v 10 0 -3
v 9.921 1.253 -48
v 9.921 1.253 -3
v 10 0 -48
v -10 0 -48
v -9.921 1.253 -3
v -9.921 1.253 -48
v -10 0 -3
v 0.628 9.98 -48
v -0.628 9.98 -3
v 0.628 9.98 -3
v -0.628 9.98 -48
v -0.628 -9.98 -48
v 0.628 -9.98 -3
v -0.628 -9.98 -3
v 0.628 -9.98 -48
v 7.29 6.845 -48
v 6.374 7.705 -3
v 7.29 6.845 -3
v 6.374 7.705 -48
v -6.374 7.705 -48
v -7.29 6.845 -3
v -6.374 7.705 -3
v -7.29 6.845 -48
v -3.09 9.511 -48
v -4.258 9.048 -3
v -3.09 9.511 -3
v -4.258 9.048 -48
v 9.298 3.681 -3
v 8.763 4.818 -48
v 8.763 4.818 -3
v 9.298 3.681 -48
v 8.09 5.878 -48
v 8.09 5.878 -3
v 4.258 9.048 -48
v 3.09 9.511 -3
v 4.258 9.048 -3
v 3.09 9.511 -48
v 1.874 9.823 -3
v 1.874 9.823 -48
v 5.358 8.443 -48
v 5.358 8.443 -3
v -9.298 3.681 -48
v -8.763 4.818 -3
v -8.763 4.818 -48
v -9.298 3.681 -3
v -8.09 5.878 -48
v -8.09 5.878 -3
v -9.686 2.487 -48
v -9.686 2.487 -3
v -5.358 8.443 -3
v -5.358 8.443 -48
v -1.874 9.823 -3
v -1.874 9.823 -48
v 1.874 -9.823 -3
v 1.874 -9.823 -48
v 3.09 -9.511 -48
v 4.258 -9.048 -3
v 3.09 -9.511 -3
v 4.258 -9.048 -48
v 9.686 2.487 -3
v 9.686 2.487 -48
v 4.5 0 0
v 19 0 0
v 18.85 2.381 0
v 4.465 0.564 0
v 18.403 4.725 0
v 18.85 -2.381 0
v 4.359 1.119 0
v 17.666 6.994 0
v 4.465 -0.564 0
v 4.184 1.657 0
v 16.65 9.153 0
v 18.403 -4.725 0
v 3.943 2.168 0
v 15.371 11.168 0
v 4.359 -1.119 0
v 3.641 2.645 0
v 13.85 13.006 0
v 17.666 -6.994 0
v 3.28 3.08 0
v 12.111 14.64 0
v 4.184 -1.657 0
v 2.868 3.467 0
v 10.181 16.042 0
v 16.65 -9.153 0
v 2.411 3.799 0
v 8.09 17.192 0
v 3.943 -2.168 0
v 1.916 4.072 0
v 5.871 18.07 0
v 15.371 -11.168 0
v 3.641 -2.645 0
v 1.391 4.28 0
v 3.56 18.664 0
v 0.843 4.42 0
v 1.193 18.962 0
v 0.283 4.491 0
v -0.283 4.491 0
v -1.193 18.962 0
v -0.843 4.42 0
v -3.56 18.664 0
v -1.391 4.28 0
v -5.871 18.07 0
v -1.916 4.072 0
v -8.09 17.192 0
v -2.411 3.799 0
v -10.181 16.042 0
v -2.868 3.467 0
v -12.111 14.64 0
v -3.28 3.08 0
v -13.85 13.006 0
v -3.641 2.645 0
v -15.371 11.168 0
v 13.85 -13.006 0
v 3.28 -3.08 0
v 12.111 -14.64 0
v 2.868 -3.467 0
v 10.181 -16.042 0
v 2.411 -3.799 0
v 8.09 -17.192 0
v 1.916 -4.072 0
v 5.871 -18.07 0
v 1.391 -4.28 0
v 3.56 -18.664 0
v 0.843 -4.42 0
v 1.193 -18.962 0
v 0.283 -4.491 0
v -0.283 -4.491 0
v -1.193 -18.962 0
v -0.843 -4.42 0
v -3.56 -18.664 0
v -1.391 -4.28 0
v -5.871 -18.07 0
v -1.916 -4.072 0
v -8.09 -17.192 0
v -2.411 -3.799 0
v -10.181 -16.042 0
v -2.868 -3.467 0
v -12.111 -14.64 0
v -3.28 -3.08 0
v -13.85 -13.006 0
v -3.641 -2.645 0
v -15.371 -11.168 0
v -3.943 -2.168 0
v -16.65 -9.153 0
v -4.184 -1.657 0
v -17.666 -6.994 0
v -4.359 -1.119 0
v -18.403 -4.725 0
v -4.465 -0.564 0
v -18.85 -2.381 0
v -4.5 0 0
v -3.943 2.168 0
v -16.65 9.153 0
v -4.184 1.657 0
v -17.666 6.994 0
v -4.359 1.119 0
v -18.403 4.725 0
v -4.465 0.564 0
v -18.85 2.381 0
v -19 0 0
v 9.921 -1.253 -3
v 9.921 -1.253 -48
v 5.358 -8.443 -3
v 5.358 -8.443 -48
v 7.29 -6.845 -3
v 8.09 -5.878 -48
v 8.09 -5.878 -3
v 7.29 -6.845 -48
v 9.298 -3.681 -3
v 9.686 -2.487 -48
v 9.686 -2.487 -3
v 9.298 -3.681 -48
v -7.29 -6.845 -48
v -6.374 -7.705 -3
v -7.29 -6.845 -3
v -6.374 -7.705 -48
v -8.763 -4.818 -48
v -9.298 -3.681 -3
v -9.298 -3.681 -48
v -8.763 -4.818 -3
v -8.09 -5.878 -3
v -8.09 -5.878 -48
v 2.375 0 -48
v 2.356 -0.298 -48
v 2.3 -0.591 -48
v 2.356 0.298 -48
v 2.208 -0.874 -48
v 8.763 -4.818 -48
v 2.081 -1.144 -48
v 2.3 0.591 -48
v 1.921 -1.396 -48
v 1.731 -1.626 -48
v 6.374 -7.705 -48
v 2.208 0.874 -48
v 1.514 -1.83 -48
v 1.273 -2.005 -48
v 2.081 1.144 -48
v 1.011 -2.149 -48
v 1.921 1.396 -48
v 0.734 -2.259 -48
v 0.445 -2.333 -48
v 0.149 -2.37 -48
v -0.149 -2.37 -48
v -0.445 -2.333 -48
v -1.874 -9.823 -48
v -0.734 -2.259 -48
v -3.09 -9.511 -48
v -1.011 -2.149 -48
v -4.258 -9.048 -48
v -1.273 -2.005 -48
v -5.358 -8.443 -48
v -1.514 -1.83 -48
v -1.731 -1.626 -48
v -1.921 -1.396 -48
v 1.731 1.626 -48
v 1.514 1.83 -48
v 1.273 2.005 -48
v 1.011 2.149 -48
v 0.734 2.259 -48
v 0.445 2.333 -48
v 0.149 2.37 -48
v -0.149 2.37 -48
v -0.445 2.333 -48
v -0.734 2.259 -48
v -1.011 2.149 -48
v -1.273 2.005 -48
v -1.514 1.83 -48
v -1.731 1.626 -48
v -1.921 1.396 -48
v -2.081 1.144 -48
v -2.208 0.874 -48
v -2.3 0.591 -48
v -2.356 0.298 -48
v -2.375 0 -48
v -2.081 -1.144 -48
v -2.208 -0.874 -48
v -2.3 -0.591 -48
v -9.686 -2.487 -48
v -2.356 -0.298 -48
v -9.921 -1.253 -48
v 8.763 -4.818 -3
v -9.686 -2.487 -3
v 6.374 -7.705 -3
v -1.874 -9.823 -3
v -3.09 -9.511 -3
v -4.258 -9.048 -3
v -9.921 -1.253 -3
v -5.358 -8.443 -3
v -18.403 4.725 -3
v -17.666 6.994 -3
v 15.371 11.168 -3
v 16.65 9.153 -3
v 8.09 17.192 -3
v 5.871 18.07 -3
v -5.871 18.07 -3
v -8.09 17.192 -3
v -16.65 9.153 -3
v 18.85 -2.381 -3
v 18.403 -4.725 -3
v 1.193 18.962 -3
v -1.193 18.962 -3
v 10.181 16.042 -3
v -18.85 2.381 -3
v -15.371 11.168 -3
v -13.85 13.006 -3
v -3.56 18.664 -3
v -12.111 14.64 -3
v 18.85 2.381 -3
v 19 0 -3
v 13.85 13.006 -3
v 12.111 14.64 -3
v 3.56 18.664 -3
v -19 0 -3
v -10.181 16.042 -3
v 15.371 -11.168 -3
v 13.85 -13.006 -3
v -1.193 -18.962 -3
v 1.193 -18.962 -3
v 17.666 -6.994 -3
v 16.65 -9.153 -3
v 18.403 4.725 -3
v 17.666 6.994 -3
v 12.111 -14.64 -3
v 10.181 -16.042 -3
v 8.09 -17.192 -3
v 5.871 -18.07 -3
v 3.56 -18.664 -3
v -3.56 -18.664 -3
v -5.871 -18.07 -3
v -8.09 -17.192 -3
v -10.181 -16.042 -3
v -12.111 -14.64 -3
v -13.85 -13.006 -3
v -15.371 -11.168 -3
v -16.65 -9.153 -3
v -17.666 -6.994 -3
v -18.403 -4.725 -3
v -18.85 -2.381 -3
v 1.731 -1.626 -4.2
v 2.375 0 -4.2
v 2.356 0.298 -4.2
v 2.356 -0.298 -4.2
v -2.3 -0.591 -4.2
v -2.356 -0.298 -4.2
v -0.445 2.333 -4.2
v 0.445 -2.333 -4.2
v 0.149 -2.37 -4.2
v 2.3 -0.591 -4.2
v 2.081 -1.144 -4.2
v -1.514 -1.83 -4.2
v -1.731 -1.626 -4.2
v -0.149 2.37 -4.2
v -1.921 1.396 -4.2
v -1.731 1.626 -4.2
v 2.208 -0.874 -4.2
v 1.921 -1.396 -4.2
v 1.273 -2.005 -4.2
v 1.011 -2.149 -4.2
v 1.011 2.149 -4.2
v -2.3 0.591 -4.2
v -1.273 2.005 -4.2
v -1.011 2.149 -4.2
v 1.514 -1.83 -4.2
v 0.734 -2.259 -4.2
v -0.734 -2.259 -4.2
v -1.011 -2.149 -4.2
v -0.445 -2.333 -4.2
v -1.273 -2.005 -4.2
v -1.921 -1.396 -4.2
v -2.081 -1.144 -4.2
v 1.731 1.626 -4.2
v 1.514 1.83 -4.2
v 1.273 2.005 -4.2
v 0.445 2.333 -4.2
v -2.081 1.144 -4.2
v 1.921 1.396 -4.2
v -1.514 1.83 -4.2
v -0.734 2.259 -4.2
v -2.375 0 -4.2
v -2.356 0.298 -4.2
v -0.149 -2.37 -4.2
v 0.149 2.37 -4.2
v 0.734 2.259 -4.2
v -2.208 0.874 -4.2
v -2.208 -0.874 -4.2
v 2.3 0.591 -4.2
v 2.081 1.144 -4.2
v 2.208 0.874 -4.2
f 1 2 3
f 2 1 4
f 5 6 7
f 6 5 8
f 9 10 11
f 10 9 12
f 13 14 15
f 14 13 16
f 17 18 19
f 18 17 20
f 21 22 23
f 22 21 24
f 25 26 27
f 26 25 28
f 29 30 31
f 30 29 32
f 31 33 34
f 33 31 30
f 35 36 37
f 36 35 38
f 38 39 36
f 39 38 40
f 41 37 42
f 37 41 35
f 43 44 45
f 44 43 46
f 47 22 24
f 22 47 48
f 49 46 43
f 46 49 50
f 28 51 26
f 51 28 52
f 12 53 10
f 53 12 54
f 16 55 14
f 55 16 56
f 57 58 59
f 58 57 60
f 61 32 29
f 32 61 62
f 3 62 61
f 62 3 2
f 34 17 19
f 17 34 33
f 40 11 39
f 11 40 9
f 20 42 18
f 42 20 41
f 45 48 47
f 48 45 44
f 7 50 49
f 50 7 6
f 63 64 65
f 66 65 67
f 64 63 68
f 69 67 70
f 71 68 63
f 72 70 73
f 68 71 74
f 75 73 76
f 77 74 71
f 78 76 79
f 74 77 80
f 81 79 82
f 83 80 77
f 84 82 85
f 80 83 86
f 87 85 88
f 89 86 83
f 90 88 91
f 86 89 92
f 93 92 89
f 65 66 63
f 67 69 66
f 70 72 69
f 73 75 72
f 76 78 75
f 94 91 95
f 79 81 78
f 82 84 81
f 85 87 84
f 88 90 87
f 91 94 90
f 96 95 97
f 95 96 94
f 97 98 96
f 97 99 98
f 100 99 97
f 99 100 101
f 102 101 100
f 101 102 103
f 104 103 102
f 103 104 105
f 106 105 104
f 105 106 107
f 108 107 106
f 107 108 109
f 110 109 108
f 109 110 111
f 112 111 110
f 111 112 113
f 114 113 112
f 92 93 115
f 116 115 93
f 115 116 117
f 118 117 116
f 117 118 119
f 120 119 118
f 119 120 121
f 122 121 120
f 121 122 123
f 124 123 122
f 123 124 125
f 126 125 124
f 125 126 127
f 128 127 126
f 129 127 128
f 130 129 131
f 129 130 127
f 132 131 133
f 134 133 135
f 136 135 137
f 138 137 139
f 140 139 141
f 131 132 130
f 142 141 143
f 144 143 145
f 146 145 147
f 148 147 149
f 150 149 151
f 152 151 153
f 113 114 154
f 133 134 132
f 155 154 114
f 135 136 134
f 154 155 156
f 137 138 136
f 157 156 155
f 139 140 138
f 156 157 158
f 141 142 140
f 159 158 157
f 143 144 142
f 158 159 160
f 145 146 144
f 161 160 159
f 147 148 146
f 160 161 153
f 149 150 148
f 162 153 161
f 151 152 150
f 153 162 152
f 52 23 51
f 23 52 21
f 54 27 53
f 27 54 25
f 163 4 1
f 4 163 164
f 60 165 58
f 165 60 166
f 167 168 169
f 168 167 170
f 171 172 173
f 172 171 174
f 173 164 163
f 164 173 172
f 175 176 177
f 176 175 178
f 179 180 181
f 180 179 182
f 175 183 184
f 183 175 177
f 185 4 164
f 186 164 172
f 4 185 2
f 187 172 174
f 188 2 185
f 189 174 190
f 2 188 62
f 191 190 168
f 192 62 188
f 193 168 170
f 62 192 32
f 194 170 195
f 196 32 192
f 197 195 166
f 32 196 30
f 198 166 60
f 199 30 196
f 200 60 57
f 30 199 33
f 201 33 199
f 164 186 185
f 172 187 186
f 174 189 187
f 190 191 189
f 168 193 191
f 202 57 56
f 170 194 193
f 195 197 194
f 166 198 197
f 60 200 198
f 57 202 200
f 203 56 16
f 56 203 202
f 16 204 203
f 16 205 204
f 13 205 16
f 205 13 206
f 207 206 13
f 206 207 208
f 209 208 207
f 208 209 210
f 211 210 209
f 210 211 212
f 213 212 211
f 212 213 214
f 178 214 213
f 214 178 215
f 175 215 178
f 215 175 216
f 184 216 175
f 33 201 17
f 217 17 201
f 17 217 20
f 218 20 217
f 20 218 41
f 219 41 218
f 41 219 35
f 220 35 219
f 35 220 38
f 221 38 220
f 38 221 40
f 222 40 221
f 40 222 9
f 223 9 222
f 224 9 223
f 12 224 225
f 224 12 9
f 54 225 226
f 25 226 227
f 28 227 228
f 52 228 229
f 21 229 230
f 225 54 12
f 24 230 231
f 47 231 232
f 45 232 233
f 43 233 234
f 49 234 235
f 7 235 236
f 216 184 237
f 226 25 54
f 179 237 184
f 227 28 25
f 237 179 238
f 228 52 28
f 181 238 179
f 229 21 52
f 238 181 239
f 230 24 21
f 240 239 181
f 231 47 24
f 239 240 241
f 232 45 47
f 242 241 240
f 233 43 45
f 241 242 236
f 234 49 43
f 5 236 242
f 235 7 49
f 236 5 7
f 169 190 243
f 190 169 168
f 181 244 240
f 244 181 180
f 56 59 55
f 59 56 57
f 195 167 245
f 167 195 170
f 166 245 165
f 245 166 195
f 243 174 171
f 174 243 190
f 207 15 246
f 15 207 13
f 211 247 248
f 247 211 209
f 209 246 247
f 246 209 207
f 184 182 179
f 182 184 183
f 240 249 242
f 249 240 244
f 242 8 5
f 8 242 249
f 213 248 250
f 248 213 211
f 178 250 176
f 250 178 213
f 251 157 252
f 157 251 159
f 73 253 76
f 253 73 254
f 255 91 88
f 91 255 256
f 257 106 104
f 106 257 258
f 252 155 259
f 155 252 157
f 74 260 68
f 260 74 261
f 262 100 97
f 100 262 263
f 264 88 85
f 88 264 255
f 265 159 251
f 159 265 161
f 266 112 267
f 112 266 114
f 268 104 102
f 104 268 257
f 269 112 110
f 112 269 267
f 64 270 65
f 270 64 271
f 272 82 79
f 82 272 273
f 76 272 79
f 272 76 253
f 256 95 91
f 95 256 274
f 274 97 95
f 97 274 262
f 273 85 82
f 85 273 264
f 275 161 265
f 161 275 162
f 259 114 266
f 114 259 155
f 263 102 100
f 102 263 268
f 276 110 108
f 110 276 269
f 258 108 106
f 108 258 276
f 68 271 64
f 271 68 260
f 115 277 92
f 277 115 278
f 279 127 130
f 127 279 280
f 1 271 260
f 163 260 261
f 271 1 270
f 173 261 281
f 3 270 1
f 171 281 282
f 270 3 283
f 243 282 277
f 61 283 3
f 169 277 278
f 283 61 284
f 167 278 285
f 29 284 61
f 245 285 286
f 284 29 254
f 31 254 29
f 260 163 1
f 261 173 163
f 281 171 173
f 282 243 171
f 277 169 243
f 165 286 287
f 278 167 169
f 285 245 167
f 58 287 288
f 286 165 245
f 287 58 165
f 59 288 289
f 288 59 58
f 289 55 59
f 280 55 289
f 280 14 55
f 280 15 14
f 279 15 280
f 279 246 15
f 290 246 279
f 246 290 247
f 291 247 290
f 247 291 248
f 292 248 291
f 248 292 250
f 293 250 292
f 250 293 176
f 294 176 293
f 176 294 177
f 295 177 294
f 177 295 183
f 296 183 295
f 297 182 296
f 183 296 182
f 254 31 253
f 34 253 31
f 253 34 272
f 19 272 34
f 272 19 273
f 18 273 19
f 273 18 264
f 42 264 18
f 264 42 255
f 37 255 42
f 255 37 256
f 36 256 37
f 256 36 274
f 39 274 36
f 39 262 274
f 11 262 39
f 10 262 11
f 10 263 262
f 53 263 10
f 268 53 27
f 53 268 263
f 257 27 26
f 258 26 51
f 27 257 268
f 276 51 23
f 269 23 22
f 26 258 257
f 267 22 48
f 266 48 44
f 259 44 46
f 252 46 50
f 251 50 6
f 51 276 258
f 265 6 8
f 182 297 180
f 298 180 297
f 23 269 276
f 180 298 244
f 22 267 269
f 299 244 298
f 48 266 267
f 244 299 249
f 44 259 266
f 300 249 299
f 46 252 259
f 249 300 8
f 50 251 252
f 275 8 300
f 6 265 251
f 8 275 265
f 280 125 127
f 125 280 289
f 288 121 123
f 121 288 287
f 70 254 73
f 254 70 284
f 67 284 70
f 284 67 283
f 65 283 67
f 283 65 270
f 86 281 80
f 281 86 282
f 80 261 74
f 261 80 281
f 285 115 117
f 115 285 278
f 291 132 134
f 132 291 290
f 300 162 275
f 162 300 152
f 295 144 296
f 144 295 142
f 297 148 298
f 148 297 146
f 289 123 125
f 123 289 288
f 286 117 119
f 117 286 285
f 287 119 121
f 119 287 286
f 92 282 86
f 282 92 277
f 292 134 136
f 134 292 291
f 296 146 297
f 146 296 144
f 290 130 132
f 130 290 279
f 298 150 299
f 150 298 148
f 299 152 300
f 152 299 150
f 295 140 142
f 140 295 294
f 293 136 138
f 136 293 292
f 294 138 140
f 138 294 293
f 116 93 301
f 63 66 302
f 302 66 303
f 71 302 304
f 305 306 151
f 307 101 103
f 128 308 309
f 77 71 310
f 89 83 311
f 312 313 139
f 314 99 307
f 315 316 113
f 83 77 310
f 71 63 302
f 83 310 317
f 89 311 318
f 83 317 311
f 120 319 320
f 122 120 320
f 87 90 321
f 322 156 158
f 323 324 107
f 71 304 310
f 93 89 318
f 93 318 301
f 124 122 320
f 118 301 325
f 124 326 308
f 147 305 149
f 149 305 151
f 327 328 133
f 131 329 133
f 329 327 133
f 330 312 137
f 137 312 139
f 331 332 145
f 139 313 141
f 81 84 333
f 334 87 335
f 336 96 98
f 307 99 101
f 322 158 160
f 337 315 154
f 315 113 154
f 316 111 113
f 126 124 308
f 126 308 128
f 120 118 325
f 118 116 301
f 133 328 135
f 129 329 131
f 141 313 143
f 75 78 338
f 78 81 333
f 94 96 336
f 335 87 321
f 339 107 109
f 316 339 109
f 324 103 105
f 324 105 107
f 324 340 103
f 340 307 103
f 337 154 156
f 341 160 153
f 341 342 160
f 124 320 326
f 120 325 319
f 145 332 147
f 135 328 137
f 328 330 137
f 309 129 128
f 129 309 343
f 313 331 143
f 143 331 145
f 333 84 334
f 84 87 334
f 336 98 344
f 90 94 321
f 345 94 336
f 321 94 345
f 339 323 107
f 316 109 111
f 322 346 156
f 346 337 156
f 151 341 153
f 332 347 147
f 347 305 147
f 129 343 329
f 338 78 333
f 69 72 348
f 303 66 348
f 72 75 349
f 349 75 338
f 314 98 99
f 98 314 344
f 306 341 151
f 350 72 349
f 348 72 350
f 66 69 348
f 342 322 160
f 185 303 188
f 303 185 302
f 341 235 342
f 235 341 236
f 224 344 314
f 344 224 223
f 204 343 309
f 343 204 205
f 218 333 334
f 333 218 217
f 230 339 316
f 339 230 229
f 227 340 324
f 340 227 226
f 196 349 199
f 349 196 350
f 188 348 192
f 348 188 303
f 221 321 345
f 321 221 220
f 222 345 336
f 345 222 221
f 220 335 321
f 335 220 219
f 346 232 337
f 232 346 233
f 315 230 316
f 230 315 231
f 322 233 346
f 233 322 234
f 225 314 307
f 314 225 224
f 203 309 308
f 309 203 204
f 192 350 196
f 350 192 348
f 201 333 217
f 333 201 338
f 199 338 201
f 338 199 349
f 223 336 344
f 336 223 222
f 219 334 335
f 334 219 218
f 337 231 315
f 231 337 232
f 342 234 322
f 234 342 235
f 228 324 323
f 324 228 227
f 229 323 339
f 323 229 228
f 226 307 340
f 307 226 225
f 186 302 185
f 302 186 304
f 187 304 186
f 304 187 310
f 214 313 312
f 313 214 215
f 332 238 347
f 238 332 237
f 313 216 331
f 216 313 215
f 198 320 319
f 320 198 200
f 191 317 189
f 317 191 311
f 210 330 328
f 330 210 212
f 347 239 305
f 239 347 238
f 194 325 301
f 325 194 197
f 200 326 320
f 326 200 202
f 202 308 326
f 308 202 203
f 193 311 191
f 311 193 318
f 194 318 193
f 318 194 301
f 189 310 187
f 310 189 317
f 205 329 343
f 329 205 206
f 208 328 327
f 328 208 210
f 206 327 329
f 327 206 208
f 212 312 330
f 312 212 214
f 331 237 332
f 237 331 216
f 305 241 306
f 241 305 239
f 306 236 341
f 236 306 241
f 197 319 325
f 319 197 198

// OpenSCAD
$fn = 50;


difference() {
	union() {
		translate(v = [0, 0, -48.0000000000]) {
			cylinder(h = 48, r = 10.0000000000);
		}
		translate(v = [0, 0, -3.0000000000]) {
			cylinder(h = 3, r = 19.0000000000);
		}
	}
	union() {
		translate(v = [0, 0, 0]) {
			rotate(a = [0, 0, 0]) {
				difference() {
					union() {
						#translate(v = [0, 0, -48.0000000000]) {
							cylinder(h = 48, r = 2.2500000000);
						}
						#translate(v = [0, 0, -4.2000000000]) {
							cylinder(h = 4.2000000000, r = 10.0000000000, r1 = 2.3750000000, r2 = 4.5000000000);
						}
						#translate(v = [0, 0, -48.0000000000]) {
							cylinder(h = 48, r = 2.3750000000);
						}
						#translate(v = [0, 0, -48.0000000000]) {
							cylinder(h = 48, r = 2.2500000000);
						}
					}
					union();
				}
			}
		}
	}
}
